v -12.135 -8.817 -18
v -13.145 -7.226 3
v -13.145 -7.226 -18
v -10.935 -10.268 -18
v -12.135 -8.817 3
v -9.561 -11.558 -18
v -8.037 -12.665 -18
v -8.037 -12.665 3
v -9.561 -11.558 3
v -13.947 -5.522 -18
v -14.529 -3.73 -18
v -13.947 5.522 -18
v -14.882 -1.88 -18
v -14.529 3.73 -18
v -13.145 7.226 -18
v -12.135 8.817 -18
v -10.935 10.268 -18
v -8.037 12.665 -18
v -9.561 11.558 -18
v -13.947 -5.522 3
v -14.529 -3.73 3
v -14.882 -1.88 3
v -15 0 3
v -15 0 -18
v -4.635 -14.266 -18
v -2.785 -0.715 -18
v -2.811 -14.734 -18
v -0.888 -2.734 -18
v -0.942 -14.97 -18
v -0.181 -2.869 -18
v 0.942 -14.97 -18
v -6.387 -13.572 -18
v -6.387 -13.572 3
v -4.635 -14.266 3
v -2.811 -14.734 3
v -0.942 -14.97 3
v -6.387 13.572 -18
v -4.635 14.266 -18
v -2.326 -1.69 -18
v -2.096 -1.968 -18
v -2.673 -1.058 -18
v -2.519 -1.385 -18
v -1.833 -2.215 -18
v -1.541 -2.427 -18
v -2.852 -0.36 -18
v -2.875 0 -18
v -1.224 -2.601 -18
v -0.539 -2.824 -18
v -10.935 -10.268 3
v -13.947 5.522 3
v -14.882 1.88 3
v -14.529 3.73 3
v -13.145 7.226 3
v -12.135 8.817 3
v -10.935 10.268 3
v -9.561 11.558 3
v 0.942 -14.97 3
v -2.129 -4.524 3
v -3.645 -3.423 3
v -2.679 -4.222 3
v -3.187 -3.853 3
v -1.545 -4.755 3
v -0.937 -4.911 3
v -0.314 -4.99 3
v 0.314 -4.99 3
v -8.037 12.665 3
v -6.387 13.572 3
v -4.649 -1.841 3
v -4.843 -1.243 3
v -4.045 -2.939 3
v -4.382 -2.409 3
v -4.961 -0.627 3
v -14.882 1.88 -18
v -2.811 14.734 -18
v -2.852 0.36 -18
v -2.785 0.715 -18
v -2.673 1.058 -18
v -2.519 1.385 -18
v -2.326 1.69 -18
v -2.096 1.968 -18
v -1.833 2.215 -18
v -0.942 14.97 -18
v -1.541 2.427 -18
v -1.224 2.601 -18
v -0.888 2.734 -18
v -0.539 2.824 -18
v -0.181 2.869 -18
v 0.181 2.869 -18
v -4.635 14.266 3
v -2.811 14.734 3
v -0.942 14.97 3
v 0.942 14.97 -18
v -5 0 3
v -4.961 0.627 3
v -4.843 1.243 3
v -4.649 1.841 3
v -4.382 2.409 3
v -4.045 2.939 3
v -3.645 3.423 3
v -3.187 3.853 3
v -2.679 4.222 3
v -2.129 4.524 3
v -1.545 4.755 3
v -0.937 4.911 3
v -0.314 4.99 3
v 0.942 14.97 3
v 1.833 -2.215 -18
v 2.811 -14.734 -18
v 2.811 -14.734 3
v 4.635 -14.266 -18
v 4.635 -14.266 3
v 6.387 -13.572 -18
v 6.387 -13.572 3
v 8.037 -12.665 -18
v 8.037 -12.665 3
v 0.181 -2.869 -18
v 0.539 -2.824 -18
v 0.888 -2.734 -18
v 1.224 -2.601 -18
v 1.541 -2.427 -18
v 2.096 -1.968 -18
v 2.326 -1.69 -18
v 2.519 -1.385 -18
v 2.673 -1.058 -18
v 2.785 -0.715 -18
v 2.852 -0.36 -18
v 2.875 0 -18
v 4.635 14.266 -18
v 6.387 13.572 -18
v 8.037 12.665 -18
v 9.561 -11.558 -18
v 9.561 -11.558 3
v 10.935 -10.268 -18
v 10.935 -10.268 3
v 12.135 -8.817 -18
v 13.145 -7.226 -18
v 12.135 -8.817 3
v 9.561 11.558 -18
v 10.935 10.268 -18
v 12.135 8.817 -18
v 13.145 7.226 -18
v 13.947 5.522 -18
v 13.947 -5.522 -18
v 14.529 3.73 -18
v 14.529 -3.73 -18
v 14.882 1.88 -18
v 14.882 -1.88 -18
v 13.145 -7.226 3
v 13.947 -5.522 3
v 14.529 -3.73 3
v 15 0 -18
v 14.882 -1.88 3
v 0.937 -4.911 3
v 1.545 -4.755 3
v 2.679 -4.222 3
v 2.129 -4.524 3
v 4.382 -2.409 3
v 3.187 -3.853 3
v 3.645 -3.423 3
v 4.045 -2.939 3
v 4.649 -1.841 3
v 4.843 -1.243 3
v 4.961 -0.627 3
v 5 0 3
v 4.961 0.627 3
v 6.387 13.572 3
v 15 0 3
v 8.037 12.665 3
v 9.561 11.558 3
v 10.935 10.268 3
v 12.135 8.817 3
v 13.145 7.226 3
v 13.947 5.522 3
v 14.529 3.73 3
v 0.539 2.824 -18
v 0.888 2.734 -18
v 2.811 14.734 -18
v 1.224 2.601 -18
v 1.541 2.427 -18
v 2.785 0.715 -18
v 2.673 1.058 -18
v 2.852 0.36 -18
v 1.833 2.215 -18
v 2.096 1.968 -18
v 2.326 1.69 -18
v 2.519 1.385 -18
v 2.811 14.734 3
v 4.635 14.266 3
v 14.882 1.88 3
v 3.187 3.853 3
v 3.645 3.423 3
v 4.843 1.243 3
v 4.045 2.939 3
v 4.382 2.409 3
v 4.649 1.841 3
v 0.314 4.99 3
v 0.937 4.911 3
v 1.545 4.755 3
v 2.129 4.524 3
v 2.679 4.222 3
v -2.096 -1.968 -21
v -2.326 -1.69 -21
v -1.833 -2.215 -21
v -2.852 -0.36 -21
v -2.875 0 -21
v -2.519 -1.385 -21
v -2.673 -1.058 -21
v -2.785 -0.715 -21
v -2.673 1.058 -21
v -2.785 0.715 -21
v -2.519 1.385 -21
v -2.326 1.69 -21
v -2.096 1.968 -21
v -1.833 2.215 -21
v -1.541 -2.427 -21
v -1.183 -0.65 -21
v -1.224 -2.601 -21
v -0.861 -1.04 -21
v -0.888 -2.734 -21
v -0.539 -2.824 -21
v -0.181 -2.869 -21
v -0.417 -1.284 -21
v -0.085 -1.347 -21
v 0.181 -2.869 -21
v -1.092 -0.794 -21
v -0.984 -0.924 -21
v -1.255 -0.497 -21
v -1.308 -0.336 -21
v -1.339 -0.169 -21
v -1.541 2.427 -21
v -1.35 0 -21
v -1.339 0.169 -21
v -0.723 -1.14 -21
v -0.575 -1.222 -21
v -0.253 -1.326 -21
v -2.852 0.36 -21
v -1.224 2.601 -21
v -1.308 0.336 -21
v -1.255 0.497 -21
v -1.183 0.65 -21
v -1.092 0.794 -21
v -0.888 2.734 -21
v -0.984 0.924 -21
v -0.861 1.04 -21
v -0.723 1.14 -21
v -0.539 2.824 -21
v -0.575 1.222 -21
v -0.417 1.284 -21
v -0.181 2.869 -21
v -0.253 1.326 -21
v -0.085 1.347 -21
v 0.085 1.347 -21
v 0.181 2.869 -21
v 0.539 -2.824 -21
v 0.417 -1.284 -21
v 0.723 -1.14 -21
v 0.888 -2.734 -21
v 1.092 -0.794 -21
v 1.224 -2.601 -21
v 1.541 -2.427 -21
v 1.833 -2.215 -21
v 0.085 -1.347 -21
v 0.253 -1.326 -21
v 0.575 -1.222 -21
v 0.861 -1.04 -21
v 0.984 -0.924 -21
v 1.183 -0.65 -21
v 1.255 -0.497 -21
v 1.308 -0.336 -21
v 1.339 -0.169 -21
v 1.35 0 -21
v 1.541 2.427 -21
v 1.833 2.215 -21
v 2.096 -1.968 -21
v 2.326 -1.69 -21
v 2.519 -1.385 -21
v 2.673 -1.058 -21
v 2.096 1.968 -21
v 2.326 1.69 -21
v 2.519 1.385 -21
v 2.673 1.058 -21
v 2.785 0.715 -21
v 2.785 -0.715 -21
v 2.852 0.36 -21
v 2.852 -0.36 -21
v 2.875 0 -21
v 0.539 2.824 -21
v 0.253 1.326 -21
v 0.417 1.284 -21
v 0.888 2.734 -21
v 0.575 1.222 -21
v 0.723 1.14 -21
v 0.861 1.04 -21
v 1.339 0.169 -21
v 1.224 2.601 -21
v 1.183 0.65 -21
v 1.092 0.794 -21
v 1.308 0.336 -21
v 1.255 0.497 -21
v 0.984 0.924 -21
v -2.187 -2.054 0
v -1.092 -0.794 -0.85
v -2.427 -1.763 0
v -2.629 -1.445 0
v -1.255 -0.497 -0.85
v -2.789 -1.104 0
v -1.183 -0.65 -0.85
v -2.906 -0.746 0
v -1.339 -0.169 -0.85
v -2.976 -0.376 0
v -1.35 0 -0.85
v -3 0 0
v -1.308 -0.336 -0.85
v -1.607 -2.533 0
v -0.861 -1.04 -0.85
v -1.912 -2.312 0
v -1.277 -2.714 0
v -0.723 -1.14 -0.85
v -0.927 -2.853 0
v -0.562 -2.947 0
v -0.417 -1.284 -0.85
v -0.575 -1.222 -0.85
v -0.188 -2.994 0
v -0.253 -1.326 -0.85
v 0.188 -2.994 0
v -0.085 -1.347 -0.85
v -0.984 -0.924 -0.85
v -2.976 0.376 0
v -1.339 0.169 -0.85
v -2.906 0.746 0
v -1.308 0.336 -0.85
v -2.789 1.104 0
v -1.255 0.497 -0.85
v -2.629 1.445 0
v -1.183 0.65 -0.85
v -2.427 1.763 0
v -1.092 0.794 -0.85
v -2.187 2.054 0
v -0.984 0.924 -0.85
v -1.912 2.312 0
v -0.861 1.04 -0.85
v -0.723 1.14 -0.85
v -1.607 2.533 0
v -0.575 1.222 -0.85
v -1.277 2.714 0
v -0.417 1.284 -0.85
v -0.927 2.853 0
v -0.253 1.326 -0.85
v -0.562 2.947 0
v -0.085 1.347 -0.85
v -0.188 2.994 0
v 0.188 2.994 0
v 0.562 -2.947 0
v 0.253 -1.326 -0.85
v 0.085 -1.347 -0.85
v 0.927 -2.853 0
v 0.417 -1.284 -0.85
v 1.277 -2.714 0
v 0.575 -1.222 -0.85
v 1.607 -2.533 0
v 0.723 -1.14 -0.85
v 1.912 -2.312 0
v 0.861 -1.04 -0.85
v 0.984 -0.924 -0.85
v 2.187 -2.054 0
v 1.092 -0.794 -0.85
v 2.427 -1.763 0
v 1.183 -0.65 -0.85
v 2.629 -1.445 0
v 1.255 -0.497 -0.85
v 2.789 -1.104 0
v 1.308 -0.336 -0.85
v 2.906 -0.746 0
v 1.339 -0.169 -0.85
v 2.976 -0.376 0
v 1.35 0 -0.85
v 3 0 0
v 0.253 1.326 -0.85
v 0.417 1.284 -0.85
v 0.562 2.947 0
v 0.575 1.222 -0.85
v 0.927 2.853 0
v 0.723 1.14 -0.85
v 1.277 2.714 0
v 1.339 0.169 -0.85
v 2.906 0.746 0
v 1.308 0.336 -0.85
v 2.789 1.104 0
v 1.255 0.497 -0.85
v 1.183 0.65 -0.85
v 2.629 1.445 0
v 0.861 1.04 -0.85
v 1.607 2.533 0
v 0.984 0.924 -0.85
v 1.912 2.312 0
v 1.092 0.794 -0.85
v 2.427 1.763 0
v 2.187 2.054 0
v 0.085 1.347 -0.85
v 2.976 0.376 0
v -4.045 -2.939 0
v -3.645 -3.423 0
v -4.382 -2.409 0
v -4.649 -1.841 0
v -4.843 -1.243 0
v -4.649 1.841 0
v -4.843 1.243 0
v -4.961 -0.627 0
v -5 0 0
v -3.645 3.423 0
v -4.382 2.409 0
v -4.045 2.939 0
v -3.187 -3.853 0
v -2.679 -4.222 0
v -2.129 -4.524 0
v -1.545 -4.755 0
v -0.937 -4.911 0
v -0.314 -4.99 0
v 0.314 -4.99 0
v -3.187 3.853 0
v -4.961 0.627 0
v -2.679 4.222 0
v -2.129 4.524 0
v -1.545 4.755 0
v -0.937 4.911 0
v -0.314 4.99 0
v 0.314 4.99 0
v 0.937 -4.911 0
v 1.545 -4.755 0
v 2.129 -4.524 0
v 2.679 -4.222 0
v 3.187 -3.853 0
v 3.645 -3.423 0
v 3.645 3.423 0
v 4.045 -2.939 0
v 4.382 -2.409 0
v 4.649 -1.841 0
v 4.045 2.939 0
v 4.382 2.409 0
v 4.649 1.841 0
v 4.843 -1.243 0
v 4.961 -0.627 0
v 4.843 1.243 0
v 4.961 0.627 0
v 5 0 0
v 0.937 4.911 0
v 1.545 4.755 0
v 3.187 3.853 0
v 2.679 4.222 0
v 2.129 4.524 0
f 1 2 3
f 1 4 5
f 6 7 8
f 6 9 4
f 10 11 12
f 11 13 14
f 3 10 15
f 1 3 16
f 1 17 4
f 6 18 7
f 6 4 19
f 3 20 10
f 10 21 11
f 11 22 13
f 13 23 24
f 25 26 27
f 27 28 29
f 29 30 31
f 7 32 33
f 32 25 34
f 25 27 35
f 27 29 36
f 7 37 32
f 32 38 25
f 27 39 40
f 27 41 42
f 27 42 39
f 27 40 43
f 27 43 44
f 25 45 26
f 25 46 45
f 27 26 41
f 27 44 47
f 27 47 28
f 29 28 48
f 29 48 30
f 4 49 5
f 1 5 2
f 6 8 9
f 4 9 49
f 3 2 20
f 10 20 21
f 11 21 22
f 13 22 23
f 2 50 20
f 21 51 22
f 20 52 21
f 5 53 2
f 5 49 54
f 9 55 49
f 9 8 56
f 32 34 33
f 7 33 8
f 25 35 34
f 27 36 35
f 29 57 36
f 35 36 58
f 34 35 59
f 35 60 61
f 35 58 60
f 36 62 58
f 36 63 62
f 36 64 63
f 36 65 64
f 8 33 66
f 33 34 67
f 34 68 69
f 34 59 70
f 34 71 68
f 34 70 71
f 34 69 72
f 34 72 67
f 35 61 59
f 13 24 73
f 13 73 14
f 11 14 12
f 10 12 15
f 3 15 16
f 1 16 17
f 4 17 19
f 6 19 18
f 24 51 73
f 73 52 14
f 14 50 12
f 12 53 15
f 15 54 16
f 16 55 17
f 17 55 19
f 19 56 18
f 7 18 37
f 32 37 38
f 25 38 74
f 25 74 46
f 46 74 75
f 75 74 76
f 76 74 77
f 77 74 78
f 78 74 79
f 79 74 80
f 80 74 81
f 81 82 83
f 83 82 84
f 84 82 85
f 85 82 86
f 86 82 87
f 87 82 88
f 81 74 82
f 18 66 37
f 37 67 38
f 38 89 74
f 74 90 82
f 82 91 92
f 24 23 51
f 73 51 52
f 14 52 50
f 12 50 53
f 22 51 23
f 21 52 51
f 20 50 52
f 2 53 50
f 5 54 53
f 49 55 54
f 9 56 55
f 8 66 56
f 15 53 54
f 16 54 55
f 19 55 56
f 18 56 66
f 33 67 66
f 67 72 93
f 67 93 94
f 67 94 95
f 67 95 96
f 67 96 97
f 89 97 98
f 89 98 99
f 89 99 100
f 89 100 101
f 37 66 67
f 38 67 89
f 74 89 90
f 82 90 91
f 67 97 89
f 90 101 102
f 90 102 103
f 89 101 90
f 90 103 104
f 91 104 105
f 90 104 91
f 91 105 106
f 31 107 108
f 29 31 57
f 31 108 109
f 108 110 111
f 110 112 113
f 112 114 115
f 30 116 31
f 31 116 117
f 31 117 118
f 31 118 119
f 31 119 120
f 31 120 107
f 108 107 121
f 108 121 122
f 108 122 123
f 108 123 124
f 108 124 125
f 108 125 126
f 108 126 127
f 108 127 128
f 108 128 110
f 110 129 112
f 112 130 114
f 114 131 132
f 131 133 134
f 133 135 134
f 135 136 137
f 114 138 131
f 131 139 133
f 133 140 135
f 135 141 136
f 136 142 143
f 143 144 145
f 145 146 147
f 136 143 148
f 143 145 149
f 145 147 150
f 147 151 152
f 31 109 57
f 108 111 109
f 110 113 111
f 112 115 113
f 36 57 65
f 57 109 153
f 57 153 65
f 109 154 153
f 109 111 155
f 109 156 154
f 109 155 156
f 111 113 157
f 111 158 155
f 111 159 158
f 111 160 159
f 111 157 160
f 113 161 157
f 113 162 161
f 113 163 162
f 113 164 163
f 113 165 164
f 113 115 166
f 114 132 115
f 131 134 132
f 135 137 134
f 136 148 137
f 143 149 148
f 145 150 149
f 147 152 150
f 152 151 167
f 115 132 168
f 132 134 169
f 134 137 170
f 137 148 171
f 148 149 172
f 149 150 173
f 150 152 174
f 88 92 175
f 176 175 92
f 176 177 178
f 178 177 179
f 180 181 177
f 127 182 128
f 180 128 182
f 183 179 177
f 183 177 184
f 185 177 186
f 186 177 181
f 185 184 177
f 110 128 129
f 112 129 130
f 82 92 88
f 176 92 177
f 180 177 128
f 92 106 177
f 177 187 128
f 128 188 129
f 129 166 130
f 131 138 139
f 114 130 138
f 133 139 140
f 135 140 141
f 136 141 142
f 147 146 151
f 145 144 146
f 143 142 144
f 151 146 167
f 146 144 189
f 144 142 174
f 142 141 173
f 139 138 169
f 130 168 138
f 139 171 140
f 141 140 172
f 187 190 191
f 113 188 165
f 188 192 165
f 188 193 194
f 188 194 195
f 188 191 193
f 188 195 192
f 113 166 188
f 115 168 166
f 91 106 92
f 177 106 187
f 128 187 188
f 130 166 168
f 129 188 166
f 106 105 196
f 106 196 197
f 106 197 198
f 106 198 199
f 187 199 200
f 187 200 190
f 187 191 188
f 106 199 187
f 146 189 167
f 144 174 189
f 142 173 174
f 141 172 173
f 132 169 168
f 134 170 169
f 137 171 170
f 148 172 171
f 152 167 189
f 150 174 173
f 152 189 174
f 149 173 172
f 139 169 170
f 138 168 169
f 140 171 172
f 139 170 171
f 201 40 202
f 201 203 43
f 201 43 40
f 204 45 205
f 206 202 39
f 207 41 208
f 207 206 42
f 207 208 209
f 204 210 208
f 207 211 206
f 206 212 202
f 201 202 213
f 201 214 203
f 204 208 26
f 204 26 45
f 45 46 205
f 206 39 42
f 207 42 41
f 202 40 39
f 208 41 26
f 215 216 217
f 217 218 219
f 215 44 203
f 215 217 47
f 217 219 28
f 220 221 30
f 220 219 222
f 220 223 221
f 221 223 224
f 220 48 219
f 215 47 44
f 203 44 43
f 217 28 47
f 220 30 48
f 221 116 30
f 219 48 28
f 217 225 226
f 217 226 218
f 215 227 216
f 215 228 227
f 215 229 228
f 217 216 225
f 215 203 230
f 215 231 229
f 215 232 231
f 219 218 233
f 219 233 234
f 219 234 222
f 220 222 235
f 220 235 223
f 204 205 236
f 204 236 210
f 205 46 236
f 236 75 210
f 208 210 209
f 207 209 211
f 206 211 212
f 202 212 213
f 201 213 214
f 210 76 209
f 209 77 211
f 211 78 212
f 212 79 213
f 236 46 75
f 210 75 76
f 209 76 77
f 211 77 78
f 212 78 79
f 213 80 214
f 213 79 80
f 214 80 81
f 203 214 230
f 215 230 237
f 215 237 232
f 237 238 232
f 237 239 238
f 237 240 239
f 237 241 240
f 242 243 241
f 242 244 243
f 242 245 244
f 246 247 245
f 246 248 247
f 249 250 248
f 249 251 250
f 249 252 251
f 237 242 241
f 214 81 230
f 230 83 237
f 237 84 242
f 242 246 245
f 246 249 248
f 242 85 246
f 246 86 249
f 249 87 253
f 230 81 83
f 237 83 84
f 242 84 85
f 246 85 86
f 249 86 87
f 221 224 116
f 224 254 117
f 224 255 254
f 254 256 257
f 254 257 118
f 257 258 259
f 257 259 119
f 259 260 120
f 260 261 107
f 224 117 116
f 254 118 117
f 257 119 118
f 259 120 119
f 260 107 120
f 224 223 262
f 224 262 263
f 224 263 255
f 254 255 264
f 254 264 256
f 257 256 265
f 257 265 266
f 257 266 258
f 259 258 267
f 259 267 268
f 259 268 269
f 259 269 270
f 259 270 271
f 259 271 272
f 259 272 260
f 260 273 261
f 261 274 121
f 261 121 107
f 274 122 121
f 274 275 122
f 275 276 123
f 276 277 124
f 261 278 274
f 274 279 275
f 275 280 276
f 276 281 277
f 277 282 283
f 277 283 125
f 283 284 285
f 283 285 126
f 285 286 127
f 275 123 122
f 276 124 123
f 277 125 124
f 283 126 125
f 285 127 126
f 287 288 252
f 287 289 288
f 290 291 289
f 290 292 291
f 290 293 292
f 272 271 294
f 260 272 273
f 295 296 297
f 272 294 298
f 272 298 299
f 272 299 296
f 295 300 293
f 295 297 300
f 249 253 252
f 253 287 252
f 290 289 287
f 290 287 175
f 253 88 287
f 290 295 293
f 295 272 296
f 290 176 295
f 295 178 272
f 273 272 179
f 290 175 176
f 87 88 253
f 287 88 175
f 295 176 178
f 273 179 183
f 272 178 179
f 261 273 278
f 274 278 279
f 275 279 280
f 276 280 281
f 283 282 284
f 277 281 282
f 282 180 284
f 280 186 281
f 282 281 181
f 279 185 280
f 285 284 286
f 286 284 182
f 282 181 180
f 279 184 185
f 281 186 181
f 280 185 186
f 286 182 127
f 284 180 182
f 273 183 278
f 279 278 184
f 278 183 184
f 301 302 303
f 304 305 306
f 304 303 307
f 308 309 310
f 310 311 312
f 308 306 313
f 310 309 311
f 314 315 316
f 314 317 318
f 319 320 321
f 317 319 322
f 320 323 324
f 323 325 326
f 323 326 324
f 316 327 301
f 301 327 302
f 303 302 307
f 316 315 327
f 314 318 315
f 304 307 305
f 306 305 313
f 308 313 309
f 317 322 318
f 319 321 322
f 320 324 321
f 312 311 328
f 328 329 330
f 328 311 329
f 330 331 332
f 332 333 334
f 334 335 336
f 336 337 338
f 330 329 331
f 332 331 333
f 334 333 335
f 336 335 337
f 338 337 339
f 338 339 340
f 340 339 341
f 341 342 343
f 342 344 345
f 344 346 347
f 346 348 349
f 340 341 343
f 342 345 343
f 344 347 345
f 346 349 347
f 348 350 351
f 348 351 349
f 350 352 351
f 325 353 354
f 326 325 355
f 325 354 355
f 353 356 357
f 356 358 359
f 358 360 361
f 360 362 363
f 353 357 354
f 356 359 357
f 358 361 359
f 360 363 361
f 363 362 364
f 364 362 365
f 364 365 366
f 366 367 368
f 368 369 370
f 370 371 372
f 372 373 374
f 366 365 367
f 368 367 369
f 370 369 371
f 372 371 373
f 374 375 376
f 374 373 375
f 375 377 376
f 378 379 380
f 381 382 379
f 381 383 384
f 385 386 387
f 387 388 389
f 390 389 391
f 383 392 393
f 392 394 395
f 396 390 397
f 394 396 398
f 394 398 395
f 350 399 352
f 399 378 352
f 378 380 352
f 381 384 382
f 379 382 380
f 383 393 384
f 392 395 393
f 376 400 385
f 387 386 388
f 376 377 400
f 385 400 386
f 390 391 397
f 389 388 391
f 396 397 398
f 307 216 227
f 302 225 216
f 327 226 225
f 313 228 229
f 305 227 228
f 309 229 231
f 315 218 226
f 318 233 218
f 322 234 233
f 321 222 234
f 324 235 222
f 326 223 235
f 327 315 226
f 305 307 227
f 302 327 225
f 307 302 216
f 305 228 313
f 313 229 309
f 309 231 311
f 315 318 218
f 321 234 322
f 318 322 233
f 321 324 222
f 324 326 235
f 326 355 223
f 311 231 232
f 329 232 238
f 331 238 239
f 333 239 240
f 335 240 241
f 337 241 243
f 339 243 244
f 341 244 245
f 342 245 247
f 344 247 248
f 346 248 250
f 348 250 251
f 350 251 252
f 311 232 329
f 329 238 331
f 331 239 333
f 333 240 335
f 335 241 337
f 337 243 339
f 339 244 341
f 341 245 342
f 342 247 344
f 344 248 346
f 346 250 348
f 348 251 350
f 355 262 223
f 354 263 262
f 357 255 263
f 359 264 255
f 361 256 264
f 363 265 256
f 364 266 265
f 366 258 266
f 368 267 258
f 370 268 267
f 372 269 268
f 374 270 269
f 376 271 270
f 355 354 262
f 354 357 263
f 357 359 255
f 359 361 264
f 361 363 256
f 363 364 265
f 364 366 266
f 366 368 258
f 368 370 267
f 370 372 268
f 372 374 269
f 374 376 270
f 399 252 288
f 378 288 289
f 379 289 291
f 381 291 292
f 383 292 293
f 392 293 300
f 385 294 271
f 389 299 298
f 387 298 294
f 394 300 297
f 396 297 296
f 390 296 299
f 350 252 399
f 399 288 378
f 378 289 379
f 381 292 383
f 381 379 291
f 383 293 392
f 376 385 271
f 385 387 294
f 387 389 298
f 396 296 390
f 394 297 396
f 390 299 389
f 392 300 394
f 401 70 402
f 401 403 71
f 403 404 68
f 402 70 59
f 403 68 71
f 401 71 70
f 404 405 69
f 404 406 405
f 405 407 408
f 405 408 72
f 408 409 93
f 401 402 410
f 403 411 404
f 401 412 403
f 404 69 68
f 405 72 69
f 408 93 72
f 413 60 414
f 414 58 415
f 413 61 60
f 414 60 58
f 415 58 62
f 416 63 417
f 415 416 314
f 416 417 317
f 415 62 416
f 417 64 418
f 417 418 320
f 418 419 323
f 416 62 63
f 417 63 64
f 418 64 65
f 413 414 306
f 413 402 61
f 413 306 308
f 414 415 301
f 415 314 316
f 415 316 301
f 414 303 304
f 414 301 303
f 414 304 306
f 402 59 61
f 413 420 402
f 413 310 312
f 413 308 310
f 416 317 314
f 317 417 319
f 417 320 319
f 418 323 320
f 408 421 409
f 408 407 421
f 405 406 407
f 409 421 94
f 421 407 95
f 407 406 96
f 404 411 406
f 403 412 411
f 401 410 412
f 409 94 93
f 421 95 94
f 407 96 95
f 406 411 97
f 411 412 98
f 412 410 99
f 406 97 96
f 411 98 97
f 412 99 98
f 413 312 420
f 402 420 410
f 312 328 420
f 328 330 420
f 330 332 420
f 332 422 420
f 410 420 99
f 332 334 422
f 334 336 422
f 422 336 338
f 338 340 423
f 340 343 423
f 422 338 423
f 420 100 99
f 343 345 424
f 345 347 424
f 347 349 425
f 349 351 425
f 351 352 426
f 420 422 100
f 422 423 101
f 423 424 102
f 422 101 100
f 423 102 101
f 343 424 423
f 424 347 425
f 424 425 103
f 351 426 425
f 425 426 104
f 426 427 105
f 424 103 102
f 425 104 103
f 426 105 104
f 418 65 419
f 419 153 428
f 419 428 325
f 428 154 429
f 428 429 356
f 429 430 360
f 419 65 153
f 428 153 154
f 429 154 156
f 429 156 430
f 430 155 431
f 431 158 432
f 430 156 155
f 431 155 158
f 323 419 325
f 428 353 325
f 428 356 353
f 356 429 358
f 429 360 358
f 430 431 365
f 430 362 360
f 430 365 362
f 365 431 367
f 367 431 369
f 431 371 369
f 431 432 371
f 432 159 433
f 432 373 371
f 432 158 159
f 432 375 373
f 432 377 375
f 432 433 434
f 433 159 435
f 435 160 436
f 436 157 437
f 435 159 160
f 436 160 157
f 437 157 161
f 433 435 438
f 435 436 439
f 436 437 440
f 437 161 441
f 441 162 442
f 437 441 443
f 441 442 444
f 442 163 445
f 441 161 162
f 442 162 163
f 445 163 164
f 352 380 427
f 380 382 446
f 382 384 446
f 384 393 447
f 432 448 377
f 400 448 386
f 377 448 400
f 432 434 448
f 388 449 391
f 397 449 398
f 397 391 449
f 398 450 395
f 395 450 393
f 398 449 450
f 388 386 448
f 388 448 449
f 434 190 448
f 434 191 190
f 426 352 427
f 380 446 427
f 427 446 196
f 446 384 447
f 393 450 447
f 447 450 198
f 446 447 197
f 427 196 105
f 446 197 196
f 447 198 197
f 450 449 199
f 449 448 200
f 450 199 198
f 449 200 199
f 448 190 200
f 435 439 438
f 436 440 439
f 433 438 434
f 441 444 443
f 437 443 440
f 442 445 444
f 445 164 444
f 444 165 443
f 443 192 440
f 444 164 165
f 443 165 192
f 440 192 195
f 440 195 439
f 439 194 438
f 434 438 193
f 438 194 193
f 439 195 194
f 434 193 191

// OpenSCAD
$fn = 50;

difference() {
	union() {
		translate(v = [0, 0, -18.0]) {
			cylinder(h = 21, r = 15.0);
		}
		#translate(v = [0, 0, -21.0]) {
			cylinder(h = 21, r = 2.875);
		}
	}
	union() {
		translate(v = [0, 0, 0]) {
			rotate(a = [0, 0, 0]) {
				difference() {
					union() {
						translate(v = [0, 0, -21.0]) {
							cylinder(h = 21, r = 1.0);
						}
						translate(v = [0, 0, -0.85]) {
							cylinder(h = 0.85, r1 = 1.35, r2 = 3.0);
						}
						translate(v = [0, 0, -21.0]) {
							cylinder(h = 21, r = 1.35);
						}
						translate(v = [0, 0, -21.0]) {
							cylinder(h = 21, r = 1.0);
						}
					}
					union();
				}
			}
		}
		#cylinder(h = 3, r = 5.0);
	}
}
